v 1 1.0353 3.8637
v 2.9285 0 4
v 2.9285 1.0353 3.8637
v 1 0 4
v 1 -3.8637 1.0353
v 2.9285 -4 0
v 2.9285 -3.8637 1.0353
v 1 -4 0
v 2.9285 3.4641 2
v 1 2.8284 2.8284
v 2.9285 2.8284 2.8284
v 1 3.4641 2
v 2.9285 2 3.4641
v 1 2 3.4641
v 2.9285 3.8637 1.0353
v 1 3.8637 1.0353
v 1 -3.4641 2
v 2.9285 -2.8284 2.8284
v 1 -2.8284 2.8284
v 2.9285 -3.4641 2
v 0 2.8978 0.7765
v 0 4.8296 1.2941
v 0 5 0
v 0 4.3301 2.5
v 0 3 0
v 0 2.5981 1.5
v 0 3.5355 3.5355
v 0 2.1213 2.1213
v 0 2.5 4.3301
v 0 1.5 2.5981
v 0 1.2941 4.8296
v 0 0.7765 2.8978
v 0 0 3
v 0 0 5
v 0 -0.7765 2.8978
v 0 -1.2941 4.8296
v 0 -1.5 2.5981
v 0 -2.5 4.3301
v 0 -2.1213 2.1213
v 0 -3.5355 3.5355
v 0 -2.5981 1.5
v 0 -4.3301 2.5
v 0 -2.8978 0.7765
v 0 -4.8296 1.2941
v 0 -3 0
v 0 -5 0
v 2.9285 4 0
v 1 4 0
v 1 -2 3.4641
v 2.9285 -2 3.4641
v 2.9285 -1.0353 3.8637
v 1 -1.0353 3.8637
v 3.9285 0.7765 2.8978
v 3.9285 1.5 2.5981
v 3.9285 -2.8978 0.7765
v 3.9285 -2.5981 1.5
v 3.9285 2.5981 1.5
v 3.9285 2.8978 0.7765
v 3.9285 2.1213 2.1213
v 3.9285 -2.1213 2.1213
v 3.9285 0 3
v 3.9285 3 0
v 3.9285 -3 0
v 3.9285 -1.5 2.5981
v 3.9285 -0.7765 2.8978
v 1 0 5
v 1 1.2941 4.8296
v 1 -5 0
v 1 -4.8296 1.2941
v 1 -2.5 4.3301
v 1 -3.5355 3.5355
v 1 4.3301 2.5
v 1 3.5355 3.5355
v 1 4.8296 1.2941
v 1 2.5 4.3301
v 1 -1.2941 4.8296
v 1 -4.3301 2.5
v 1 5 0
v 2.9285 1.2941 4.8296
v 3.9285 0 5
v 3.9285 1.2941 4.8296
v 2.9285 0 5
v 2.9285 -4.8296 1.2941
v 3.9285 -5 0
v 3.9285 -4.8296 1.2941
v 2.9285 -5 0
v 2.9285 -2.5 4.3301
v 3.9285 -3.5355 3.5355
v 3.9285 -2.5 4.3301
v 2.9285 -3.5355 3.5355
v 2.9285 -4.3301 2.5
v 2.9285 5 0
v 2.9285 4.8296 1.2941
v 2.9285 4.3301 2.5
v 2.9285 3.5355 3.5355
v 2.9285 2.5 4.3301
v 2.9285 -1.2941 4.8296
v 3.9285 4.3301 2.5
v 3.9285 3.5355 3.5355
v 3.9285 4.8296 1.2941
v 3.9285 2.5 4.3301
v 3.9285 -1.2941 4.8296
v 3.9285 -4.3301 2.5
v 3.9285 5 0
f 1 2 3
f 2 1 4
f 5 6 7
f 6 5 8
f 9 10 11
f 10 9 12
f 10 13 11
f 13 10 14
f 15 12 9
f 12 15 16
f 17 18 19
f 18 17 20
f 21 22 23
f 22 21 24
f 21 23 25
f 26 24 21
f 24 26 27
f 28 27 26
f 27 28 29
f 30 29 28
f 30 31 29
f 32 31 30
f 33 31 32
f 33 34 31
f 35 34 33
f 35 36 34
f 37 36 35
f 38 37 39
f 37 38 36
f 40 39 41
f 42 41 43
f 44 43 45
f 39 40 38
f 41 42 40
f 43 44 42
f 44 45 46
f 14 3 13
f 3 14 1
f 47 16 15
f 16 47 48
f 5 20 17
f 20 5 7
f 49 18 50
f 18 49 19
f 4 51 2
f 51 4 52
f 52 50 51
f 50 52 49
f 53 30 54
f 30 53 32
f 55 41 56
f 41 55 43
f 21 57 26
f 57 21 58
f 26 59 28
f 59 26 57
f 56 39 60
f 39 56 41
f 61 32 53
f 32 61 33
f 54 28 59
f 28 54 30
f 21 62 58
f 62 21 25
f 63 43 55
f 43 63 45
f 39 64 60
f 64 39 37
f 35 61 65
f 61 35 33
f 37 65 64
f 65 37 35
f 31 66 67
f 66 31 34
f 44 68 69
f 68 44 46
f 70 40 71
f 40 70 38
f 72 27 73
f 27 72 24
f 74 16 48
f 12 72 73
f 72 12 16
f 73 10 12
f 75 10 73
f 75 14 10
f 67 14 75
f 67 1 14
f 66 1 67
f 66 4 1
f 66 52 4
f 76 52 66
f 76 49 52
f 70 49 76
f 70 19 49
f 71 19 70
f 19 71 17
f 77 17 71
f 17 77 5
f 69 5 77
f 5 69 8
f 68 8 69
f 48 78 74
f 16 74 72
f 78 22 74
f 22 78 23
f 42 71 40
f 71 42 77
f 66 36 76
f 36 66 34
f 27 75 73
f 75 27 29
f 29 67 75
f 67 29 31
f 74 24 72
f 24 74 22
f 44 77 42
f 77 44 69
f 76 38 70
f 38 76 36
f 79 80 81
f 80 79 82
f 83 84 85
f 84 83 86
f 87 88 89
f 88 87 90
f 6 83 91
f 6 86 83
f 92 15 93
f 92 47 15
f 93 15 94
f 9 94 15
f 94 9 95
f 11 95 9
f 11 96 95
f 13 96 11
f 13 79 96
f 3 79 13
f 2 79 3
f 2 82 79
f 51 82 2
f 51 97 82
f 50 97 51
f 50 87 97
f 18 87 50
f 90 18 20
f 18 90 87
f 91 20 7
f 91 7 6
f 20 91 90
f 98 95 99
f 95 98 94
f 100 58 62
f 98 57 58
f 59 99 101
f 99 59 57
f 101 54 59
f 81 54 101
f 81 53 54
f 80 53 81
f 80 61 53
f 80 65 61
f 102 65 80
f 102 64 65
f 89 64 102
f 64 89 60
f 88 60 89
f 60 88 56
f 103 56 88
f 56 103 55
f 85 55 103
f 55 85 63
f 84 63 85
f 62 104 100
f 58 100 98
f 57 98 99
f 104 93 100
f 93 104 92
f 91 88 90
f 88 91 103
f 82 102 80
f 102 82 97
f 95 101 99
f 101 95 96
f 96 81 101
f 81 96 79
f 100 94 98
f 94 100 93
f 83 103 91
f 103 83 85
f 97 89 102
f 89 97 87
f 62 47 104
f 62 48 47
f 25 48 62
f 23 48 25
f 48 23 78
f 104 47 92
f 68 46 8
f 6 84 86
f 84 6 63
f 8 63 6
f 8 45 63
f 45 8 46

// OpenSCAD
// file: ../build_environments.scad
// build_environments.scad: modules to build level sections
//

module pool(diameter=10.0, wall_height=2.0, step_width=3.0, connections=[])
{
    difference() {
        union() {
        difference() {
            cylinder(h=0.5,r1=diameter+step_width,r2=diameter+step_width,$fn=48);
            translate([0,0,-0.1])
                cylinder(h=0.7,r1=diameter,r2=diameter,$fn=48);
        }
        difference() {
            cylinder(h=wall_height,r1=diameter+step_width+1.0,r2=diameter+step_width+1.0,$fn=48);
            translate([0,0,-0.1])
                cylinder(h=wall_height+0.2,r1=diameter+step_width,r2=diameter+step_width,$fn=48);
        }
        }
    
        for (c = connections)
        {
            rotate([0,90,0]) {
                angle = atan2(c[1],c[0]);
                rotate([-angle,0,0]) {
                    cylinder(h=diameter+5.0,r1=c[2],r2=c[2],$fn=48);
                }
            }
        }
    }
}

module straight(length=10.0, width=2.0, dy1=0.0, dy2=0.0, dz=0.0)
{
    dims = [0, 0, 0, 0, 0, (dz/length)];
    matrix = [
        [ 1, dims[0], dims[1], 0 ],
        [ dims[2], 1, dims[4], 0 ],
        [ dims[5], dims[3], 1, 0 ],
        [ 0, 0, 0, 1 ]
    ];
    multmatrix(matrix)
    difference() {
        translate([dy1,0,0])
        union() {
            rotate([0,90,0]) {
                difference() {
                    cylinder(h=(length-dy1-dy2),r1=width+1.0,r2=width+1.0,$fn=24);
                    translate([0,0,-0.1])
                        cylinder(h=(length-dy1-dy2+0.2),r1=width,r2=width,$fn=24);
                }
                difference() {
                    cylinder(h=1.0,r1=width+2.0,r2=width+2.0,$fn=24);
                    translate([0,0,-0.1])
                        cylinder(h=1.2,r1=width,r2=width,$fn=24);
                }
                translate([0,0,(length-dy1-dy2)-1.0]) {
                    difference() {
                        cylinder(h=1.0,r1=width+2.0,r2=width+2.0,$fn=24);
                        translate([0,0,-0.1])
                            cylinder(h=1.2,r1=width,r2=width,$fn=24);
                    }
                }
            }
        }
        translate([0,0,-(2*width+4.0)/2])
            cube([3*length,3*length,2*width+4.0],center=true);
    }
}

module curve(p0=[0,0], center=[0,0], dir=1, angle=0.0, width=2.0)
{
    radius = sqrt((p0[0]-center[0])*(p0[0]-center[0]) + (p0[1]-center[1])*(p0[1]-center[1]));
    if (dir == 0) {
        difference() {
            rotate([0,0,-90])
            difference() {
                rotate_extrude(angle = angle, convexity = 10, $fn=32)
                    translate([radius, 0, 0])
                        circle(r = width+1.0,$fn=24);
                rotate([0,0,-1.0])
                    rotate_extrude(angle = angle+2.0, convexity = 10, $fn=32)
                        translate([radius, 0, 0])
                            circle(r = width,$fn=24);
            }
            translate([0,0,-(2*width+4.0)/2])
                cube([5*radius,5*radius,2*width+4.0],center=true);
        }
    }
    else {
        difference() {
            rotate([0,0,90])
            difference() {
                rotate_extrude(angle = -angle, convexity = 10, $fn=32)
                    translate([radius, 0, 0])
                        circle(r = width+1.0,$fn=24);
                rotate([0,0,1.0])
                    rotate_extrude(angle = -angle-2.0, convexity = 10, $fn=32)
                        translate([radius, 0, 0])
                            circle(r = width,$fn=24);
            }
            translate([0,0,-(2*width+4.0)/2])
                cube([5*radius,5*radius,2*width+4.0],center=true);
        }
    }

}

// test pool
//pool(diameter=12.0000, wall_height=3.0000, step_width=3.0000, connections=[[0.0000,-26.0000,2.0000], [23.6074,0.0000,2.0000]]);

// test straight, slope
//straight(length=26.0000, width=2.0000, dy1=11.8322, dy2=6.7082, dz=0.0000);
//straight(length=29.1549, width=12.0000, dy1=0.0000, dy2=0.0000, dz=-15.0000);

// test curve
//curve(p0=[23.6074, 0.0000], center=[23.6074, 5.0000], dir=0, angle=60.1011, width=2.0000);
//curve(p0=[33.6426, 12.4219], center=[37.9771, 9.9295], dir=1, angle=120.4627, width=2.0000);
// main file
use <../build_environments.scad>;
straight(length=3.9285, width=3.0000, dy1=0.0000, dy2=0.0000, dz=0.0000);
